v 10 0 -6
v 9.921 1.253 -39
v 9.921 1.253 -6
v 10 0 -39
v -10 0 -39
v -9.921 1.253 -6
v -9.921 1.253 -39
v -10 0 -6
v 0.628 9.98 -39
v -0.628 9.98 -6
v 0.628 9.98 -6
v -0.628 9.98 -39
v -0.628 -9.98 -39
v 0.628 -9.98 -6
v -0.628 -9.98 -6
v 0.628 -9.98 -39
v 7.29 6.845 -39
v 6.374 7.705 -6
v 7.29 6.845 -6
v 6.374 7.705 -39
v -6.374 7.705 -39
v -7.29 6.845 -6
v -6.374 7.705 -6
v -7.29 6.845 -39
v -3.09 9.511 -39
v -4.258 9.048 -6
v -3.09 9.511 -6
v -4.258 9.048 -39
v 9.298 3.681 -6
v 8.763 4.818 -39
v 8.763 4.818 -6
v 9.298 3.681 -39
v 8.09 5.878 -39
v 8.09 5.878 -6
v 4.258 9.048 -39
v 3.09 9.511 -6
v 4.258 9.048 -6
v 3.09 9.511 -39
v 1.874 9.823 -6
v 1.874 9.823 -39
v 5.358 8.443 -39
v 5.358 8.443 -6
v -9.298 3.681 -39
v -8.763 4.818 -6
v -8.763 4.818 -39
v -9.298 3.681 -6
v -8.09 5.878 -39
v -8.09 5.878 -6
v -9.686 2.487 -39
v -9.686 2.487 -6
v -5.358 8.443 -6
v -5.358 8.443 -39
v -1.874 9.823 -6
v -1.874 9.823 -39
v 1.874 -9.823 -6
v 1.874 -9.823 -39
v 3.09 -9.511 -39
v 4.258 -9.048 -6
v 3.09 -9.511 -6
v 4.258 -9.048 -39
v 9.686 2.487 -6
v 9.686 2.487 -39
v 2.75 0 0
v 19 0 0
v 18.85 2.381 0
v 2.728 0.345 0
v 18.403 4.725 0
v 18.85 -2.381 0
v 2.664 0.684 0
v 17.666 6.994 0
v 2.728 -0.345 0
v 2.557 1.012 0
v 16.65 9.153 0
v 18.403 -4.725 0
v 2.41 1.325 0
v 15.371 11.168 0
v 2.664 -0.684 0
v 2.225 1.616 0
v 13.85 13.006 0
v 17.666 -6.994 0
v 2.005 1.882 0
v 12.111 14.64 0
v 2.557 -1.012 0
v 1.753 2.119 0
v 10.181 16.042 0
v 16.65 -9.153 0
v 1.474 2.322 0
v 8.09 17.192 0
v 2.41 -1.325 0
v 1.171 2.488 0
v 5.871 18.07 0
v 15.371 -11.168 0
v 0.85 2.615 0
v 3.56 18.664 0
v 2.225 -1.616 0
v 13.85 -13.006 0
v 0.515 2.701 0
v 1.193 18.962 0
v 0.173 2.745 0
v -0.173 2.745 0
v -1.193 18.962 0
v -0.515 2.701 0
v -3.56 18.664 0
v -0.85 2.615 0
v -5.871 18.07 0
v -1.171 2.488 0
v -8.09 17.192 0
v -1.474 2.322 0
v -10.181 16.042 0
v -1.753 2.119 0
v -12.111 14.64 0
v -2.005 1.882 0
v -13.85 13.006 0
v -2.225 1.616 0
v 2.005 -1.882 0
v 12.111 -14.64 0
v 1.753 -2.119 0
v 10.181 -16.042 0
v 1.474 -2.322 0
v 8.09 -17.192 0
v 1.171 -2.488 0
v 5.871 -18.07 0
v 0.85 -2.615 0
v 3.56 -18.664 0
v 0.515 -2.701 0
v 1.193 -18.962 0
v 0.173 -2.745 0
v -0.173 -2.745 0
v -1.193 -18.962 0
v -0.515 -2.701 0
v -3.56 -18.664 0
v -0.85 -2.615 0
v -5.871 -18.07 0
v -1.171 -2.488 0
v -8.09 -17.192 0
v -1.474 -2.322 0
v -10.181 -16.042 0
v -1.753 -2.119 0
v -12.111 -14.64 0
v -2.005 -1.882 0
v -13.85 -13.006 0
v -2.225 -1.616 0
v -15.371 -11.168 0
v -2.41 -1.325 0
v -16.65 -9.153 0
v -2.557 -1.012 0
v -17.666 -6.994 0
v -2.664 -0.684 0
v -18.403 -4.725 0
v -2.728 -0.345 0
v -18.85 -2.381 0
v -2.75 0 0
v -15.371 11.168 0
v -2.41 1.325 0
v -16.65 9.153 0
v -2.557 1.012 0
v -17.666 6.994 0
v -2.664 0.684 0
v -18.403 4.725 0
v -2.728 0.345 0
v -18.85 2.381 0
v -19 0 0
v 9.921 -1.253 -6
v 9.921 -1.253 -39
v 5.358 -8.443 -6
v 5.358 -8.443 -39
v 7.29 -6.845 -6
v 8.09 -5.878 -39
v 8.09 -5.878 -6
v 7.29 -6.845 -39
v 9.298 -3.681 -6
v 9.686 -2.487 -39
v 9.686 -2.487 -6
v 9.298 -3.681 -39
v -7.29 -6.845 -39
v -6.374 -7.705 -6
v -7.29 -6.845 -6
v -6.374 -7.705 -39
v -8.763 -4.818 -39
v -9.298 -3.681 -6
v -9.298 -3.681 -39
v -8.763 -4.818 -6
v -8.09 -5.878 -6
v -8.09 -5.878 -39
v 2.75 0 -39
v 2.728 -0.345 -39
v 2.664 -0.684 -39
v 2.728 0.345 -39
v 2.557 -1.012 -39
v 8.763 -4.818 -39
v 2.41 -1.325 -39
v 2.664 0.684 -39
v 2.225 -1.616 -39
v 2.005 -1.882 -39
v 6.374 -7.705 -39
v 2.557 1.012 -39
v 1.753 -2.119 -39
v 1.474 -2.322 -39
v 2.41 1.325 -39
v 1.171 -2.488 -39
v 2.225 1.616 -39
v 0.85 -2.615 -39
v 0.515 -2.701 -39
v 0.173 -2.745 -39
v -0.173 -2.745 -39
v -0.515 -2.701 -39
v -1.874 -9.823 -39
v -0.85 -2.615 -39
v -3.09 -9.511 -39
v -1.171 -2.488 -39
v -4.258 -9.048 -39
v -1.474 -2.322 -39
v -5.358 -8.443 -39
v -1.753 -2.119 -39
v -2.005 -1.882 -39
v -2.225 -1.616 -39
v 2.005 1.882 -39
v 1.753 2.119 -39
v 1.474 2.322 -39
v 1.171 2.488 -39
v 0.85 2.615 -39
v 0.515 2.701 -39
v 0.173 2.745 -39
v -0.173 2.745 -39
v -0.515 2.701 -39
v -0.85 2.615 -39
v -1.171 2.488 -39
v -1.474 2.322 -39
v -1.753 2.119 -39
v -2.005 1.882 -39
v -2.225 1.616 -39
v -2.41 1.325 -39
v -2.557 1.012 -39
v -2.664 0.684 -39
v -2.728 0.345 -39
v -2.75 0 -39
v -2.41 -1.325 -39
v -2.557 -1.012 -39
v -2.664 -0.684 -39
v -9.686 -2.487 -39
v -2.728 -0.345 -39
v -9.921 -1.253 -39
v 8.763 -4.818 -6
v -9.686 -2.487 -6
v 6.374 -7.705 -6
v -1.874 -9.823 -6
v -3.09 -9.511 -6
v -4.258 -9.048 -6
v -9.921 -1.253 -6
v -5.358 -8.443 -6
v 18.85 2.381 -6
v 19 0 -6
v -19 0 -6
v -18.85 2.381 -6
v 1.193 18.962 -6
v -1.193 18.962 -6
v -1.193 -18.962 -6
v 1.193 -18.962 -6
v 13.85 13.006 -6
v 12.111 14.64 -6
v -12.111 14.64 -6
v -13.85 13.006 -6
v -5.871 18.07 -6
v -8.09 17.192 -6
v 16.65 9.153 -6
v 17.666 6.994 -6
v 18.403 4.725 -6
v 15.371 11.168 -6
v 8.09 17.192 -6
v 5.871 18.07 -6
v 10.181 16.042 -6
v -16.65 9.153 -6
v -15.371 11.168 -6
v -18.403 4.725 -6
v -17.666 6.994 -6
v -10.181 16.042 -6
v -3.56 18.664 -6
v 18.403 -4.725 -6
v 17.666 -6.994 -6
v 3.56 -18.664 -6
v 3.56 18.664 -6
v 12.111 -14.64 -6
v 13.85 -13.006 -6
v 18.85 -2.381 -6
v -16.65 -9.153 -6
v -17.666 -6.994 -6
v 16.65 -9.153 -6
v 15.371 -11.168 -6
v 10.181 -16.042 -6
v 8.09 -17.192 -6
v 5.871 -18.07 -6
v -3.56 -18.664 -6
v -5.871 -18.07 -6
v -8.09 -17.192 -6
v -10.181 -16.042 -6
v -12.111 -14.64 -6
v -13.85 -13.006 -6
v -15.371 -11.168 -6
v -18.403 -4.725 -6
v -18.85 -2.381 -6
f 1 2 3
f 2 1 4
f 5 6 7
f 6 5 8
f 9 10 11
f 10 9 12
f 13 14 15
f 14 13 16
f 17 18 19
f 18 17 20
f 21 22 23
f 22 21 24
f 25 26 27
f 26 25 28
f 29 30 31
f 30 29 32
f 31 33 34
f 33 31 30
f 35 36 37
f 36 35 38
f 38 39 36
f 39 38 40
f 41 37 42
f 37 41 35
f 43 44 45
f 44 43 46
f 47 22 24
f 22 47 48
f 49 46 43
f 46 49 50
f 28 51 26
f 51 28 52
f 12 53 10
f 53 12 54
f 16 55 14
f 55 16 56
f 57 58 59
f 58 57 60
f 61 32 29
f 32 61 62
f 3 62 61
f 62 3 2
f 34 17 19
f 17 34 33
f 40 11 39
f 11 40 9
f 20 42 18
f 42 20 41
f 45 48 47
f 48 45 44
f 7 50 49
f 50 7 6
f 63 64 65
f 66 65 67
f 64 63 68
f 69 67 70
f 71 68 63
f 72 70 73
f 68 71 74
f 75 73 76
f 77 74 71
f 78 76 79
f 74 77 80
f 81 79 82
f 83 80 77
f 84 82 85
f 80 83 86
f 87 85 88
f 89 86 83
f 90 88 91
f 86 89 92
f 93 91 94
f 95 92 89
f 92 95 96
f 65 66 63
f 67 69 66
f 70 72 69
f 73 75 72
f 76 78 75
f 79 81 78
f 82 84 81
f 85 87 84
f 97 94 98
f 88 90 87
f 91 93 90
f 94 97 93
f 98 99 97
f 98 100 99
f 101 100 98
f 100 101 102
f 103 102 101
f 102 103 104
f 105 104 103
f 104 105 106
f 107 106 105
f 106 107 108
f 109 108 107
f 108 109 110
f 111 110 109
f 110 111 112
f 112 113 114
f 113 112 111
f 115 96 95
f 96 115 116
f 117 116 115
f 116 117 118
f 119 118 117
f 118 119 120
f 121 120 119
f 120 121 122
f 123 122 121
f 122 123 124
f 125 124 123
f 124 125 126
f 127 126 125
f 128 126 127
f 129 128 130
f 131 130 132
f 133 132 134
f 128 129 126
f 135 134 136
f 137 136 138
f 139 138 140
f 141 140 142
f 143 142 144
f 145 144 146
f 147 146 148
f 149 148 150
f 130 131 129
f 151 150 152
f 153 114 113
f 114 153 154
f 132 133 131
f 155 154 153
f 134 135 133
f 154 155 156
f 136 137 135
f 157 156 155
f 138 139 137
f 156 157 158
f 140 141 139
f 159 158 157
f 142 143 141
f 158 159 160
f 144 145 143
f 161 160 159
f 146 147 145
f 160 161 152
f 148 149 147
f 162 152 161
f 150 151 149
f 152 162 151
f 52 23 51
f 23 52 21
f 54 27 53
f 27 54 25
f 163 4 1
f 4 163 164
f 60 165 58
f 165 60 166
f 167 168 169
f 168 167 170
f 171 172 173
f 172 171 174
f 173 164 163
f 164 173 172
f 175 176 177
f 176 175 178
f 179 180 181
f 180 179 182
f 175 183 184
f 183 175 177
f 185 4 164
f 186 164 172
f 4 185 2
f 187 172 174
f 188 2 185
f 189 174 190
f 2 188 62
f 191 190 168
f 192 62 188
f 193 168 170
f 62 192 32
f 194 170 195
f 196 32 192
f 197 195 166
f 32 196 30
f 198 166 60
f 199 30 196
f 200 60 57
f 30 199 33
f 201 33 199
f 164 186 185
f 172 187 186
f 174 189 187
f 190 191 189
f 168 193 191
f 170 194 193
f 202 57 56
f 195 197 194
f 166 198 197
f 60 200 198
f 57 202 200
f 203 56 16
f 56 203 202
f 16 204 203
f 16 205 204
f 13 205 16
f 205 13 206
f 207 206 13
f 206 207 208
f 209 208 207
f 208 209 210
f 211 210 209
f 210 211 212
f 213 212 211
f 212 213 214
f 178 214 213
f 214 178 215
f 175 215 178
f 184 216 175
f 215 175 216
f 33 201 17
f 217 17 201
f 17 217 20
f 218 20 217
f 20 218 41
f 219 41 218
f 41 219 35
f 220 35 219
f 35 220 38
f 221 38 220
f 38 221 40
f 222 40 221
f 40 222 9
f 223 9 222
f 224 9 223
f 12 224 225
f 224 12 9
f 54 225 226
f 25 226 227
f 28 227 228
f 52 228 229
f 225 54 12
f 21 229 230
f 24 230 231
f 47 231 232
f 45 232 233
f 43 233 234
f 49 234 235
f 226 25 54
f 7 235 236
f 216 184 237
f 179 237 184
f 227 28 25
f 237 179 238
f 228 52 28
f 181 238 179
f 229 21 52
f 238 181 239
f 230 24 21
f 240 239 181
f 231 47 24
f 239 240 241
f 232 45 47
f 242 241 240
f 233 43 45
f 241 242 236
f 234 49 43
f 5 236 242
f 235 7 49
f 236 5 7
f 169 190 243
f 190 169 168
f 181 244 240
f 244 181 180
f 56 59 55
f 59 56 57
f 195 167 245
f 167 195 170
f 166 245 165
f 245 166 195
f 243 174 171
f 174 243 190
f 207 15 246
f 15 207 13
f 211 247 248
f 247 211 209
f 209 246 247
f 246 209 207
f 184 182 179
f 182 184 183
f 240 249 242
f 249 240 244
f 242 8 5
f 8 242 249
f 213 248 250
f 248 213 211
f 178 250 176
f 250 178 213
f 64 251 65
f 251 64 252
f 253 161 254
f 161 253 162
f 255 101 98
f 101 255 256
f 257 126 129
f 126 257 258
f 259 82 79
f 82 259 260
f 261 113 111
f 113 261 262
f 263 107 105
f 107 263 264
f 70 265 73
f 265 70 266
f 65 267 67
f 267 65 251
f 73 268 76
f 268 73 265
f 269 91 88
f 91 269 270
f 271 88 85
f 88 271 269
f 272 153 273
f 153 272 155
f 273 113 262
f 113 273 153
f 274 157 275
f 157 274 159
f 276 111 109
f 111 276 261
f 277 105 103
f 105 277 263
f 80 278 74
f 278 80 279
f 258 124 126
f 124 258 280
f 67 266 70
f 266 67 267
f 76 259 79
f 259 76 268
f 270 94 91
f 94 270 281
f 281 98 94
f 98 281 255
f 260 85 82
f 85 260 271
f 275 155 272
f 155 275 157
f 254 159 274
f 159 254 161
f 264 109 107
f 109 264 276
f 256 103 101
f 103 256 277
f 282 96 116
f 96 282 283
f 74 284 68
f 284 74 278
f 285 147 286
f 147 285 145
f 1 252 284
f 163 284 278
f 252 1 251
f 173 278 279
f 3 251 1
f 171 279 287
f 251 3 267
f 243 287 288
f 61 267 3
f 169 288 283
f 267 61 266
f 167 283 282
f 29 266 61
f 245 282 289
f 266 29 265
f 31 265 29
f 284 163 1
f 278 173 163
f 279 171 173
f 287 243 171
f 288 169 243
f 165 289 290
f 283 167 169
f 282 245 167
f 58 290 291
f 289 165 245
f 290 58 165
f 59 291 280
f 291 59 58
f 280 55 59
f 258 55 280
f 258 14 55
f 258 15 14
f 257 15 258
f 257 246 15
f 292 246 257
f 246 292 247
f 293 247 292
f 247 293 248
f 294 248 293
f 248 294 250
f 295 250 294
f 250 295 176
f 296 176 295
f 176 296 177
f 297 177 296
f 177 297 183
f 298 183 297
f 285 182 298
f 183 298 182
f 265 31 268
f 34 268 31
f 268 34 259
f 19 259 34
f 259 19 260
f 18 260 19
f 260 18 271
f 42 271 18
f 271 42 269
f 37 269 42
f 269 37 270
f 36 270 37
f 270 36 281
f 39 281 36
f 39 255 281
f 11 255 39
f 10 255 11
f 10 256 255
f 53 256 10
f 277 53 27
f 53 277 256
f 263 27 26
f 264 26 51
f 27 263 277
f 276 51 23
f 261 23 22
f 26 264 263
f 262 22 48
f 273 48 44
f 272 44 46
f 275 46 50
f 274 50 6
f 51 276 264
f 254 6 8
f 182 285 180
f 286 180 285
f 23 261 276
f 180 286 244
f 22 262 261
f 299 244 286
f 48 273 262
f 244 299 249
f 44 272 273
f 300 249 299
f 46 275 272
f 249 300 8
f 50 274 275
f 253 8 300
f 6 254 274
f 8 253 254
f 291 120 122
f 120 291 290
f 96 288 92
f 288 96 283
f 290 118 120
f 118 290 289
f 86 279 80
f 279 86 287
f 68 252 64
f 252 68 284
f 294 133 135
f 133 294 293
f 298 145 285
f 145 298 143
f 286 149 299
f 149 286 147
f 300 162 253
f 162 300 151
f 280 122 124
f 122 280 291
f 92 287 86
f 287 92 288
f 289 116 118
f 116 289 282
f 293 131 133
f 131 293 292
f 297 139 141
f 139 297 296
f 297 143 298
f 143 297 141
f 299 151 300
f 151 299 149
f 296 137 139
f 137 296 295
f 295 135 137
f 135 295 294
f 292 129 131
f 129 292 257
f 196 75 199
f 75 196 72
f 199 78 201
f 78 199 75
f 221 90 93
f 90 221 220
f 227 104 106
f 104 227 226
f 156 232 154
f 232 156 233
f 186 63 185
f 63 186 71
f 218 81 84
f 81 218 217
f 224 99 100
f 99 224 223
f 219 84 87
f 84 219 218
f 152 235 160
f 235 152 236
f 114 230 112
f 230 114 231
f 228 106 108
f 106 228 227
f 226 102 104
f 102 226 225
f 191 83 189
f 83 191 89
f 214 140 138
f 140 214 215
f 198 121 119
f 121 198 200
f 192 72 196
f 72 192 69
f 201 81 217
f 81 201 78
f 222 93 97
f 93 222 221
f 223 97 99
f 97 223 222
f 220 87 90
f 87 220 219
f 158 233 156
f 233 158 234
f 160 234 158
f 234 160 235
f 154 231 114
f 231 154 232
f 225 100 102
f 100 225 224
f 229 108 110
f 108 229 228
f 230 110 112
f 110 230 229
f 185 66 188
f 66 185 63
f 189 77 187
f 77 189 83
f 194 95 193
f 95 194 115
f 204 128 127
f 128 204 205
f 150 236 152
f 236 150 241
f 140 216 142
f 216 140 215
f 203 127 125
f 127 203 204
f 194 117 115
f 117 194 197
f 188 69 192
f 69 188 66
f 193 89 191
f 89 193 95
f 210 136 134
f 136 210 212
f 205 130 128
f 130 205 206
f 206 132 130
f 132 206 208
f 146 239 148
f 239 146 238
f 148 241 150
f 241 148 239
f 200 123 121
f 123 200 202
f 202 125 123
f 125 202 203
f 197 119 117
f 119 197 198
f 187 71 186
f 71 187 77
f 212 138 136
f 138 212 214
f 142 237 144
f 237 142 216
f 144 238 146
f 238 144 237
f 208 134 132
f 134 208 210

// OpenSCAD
$fn = 50;


difference() {
	union() {
		translate(v = [0, 0, -39.0000000000]) {
			cylinder(h = 39, r = 10.0000000000);
		}
		translate(v = [0, 0, -6.0000000000]) {
			cylinder(h = 6, r = 19.0000000000);
		}
	}
	union() {
		#translate(v = [0, 0, -39]) {
			cylinder(h = 39, r = 2.7500000000);
		}
	}
}
